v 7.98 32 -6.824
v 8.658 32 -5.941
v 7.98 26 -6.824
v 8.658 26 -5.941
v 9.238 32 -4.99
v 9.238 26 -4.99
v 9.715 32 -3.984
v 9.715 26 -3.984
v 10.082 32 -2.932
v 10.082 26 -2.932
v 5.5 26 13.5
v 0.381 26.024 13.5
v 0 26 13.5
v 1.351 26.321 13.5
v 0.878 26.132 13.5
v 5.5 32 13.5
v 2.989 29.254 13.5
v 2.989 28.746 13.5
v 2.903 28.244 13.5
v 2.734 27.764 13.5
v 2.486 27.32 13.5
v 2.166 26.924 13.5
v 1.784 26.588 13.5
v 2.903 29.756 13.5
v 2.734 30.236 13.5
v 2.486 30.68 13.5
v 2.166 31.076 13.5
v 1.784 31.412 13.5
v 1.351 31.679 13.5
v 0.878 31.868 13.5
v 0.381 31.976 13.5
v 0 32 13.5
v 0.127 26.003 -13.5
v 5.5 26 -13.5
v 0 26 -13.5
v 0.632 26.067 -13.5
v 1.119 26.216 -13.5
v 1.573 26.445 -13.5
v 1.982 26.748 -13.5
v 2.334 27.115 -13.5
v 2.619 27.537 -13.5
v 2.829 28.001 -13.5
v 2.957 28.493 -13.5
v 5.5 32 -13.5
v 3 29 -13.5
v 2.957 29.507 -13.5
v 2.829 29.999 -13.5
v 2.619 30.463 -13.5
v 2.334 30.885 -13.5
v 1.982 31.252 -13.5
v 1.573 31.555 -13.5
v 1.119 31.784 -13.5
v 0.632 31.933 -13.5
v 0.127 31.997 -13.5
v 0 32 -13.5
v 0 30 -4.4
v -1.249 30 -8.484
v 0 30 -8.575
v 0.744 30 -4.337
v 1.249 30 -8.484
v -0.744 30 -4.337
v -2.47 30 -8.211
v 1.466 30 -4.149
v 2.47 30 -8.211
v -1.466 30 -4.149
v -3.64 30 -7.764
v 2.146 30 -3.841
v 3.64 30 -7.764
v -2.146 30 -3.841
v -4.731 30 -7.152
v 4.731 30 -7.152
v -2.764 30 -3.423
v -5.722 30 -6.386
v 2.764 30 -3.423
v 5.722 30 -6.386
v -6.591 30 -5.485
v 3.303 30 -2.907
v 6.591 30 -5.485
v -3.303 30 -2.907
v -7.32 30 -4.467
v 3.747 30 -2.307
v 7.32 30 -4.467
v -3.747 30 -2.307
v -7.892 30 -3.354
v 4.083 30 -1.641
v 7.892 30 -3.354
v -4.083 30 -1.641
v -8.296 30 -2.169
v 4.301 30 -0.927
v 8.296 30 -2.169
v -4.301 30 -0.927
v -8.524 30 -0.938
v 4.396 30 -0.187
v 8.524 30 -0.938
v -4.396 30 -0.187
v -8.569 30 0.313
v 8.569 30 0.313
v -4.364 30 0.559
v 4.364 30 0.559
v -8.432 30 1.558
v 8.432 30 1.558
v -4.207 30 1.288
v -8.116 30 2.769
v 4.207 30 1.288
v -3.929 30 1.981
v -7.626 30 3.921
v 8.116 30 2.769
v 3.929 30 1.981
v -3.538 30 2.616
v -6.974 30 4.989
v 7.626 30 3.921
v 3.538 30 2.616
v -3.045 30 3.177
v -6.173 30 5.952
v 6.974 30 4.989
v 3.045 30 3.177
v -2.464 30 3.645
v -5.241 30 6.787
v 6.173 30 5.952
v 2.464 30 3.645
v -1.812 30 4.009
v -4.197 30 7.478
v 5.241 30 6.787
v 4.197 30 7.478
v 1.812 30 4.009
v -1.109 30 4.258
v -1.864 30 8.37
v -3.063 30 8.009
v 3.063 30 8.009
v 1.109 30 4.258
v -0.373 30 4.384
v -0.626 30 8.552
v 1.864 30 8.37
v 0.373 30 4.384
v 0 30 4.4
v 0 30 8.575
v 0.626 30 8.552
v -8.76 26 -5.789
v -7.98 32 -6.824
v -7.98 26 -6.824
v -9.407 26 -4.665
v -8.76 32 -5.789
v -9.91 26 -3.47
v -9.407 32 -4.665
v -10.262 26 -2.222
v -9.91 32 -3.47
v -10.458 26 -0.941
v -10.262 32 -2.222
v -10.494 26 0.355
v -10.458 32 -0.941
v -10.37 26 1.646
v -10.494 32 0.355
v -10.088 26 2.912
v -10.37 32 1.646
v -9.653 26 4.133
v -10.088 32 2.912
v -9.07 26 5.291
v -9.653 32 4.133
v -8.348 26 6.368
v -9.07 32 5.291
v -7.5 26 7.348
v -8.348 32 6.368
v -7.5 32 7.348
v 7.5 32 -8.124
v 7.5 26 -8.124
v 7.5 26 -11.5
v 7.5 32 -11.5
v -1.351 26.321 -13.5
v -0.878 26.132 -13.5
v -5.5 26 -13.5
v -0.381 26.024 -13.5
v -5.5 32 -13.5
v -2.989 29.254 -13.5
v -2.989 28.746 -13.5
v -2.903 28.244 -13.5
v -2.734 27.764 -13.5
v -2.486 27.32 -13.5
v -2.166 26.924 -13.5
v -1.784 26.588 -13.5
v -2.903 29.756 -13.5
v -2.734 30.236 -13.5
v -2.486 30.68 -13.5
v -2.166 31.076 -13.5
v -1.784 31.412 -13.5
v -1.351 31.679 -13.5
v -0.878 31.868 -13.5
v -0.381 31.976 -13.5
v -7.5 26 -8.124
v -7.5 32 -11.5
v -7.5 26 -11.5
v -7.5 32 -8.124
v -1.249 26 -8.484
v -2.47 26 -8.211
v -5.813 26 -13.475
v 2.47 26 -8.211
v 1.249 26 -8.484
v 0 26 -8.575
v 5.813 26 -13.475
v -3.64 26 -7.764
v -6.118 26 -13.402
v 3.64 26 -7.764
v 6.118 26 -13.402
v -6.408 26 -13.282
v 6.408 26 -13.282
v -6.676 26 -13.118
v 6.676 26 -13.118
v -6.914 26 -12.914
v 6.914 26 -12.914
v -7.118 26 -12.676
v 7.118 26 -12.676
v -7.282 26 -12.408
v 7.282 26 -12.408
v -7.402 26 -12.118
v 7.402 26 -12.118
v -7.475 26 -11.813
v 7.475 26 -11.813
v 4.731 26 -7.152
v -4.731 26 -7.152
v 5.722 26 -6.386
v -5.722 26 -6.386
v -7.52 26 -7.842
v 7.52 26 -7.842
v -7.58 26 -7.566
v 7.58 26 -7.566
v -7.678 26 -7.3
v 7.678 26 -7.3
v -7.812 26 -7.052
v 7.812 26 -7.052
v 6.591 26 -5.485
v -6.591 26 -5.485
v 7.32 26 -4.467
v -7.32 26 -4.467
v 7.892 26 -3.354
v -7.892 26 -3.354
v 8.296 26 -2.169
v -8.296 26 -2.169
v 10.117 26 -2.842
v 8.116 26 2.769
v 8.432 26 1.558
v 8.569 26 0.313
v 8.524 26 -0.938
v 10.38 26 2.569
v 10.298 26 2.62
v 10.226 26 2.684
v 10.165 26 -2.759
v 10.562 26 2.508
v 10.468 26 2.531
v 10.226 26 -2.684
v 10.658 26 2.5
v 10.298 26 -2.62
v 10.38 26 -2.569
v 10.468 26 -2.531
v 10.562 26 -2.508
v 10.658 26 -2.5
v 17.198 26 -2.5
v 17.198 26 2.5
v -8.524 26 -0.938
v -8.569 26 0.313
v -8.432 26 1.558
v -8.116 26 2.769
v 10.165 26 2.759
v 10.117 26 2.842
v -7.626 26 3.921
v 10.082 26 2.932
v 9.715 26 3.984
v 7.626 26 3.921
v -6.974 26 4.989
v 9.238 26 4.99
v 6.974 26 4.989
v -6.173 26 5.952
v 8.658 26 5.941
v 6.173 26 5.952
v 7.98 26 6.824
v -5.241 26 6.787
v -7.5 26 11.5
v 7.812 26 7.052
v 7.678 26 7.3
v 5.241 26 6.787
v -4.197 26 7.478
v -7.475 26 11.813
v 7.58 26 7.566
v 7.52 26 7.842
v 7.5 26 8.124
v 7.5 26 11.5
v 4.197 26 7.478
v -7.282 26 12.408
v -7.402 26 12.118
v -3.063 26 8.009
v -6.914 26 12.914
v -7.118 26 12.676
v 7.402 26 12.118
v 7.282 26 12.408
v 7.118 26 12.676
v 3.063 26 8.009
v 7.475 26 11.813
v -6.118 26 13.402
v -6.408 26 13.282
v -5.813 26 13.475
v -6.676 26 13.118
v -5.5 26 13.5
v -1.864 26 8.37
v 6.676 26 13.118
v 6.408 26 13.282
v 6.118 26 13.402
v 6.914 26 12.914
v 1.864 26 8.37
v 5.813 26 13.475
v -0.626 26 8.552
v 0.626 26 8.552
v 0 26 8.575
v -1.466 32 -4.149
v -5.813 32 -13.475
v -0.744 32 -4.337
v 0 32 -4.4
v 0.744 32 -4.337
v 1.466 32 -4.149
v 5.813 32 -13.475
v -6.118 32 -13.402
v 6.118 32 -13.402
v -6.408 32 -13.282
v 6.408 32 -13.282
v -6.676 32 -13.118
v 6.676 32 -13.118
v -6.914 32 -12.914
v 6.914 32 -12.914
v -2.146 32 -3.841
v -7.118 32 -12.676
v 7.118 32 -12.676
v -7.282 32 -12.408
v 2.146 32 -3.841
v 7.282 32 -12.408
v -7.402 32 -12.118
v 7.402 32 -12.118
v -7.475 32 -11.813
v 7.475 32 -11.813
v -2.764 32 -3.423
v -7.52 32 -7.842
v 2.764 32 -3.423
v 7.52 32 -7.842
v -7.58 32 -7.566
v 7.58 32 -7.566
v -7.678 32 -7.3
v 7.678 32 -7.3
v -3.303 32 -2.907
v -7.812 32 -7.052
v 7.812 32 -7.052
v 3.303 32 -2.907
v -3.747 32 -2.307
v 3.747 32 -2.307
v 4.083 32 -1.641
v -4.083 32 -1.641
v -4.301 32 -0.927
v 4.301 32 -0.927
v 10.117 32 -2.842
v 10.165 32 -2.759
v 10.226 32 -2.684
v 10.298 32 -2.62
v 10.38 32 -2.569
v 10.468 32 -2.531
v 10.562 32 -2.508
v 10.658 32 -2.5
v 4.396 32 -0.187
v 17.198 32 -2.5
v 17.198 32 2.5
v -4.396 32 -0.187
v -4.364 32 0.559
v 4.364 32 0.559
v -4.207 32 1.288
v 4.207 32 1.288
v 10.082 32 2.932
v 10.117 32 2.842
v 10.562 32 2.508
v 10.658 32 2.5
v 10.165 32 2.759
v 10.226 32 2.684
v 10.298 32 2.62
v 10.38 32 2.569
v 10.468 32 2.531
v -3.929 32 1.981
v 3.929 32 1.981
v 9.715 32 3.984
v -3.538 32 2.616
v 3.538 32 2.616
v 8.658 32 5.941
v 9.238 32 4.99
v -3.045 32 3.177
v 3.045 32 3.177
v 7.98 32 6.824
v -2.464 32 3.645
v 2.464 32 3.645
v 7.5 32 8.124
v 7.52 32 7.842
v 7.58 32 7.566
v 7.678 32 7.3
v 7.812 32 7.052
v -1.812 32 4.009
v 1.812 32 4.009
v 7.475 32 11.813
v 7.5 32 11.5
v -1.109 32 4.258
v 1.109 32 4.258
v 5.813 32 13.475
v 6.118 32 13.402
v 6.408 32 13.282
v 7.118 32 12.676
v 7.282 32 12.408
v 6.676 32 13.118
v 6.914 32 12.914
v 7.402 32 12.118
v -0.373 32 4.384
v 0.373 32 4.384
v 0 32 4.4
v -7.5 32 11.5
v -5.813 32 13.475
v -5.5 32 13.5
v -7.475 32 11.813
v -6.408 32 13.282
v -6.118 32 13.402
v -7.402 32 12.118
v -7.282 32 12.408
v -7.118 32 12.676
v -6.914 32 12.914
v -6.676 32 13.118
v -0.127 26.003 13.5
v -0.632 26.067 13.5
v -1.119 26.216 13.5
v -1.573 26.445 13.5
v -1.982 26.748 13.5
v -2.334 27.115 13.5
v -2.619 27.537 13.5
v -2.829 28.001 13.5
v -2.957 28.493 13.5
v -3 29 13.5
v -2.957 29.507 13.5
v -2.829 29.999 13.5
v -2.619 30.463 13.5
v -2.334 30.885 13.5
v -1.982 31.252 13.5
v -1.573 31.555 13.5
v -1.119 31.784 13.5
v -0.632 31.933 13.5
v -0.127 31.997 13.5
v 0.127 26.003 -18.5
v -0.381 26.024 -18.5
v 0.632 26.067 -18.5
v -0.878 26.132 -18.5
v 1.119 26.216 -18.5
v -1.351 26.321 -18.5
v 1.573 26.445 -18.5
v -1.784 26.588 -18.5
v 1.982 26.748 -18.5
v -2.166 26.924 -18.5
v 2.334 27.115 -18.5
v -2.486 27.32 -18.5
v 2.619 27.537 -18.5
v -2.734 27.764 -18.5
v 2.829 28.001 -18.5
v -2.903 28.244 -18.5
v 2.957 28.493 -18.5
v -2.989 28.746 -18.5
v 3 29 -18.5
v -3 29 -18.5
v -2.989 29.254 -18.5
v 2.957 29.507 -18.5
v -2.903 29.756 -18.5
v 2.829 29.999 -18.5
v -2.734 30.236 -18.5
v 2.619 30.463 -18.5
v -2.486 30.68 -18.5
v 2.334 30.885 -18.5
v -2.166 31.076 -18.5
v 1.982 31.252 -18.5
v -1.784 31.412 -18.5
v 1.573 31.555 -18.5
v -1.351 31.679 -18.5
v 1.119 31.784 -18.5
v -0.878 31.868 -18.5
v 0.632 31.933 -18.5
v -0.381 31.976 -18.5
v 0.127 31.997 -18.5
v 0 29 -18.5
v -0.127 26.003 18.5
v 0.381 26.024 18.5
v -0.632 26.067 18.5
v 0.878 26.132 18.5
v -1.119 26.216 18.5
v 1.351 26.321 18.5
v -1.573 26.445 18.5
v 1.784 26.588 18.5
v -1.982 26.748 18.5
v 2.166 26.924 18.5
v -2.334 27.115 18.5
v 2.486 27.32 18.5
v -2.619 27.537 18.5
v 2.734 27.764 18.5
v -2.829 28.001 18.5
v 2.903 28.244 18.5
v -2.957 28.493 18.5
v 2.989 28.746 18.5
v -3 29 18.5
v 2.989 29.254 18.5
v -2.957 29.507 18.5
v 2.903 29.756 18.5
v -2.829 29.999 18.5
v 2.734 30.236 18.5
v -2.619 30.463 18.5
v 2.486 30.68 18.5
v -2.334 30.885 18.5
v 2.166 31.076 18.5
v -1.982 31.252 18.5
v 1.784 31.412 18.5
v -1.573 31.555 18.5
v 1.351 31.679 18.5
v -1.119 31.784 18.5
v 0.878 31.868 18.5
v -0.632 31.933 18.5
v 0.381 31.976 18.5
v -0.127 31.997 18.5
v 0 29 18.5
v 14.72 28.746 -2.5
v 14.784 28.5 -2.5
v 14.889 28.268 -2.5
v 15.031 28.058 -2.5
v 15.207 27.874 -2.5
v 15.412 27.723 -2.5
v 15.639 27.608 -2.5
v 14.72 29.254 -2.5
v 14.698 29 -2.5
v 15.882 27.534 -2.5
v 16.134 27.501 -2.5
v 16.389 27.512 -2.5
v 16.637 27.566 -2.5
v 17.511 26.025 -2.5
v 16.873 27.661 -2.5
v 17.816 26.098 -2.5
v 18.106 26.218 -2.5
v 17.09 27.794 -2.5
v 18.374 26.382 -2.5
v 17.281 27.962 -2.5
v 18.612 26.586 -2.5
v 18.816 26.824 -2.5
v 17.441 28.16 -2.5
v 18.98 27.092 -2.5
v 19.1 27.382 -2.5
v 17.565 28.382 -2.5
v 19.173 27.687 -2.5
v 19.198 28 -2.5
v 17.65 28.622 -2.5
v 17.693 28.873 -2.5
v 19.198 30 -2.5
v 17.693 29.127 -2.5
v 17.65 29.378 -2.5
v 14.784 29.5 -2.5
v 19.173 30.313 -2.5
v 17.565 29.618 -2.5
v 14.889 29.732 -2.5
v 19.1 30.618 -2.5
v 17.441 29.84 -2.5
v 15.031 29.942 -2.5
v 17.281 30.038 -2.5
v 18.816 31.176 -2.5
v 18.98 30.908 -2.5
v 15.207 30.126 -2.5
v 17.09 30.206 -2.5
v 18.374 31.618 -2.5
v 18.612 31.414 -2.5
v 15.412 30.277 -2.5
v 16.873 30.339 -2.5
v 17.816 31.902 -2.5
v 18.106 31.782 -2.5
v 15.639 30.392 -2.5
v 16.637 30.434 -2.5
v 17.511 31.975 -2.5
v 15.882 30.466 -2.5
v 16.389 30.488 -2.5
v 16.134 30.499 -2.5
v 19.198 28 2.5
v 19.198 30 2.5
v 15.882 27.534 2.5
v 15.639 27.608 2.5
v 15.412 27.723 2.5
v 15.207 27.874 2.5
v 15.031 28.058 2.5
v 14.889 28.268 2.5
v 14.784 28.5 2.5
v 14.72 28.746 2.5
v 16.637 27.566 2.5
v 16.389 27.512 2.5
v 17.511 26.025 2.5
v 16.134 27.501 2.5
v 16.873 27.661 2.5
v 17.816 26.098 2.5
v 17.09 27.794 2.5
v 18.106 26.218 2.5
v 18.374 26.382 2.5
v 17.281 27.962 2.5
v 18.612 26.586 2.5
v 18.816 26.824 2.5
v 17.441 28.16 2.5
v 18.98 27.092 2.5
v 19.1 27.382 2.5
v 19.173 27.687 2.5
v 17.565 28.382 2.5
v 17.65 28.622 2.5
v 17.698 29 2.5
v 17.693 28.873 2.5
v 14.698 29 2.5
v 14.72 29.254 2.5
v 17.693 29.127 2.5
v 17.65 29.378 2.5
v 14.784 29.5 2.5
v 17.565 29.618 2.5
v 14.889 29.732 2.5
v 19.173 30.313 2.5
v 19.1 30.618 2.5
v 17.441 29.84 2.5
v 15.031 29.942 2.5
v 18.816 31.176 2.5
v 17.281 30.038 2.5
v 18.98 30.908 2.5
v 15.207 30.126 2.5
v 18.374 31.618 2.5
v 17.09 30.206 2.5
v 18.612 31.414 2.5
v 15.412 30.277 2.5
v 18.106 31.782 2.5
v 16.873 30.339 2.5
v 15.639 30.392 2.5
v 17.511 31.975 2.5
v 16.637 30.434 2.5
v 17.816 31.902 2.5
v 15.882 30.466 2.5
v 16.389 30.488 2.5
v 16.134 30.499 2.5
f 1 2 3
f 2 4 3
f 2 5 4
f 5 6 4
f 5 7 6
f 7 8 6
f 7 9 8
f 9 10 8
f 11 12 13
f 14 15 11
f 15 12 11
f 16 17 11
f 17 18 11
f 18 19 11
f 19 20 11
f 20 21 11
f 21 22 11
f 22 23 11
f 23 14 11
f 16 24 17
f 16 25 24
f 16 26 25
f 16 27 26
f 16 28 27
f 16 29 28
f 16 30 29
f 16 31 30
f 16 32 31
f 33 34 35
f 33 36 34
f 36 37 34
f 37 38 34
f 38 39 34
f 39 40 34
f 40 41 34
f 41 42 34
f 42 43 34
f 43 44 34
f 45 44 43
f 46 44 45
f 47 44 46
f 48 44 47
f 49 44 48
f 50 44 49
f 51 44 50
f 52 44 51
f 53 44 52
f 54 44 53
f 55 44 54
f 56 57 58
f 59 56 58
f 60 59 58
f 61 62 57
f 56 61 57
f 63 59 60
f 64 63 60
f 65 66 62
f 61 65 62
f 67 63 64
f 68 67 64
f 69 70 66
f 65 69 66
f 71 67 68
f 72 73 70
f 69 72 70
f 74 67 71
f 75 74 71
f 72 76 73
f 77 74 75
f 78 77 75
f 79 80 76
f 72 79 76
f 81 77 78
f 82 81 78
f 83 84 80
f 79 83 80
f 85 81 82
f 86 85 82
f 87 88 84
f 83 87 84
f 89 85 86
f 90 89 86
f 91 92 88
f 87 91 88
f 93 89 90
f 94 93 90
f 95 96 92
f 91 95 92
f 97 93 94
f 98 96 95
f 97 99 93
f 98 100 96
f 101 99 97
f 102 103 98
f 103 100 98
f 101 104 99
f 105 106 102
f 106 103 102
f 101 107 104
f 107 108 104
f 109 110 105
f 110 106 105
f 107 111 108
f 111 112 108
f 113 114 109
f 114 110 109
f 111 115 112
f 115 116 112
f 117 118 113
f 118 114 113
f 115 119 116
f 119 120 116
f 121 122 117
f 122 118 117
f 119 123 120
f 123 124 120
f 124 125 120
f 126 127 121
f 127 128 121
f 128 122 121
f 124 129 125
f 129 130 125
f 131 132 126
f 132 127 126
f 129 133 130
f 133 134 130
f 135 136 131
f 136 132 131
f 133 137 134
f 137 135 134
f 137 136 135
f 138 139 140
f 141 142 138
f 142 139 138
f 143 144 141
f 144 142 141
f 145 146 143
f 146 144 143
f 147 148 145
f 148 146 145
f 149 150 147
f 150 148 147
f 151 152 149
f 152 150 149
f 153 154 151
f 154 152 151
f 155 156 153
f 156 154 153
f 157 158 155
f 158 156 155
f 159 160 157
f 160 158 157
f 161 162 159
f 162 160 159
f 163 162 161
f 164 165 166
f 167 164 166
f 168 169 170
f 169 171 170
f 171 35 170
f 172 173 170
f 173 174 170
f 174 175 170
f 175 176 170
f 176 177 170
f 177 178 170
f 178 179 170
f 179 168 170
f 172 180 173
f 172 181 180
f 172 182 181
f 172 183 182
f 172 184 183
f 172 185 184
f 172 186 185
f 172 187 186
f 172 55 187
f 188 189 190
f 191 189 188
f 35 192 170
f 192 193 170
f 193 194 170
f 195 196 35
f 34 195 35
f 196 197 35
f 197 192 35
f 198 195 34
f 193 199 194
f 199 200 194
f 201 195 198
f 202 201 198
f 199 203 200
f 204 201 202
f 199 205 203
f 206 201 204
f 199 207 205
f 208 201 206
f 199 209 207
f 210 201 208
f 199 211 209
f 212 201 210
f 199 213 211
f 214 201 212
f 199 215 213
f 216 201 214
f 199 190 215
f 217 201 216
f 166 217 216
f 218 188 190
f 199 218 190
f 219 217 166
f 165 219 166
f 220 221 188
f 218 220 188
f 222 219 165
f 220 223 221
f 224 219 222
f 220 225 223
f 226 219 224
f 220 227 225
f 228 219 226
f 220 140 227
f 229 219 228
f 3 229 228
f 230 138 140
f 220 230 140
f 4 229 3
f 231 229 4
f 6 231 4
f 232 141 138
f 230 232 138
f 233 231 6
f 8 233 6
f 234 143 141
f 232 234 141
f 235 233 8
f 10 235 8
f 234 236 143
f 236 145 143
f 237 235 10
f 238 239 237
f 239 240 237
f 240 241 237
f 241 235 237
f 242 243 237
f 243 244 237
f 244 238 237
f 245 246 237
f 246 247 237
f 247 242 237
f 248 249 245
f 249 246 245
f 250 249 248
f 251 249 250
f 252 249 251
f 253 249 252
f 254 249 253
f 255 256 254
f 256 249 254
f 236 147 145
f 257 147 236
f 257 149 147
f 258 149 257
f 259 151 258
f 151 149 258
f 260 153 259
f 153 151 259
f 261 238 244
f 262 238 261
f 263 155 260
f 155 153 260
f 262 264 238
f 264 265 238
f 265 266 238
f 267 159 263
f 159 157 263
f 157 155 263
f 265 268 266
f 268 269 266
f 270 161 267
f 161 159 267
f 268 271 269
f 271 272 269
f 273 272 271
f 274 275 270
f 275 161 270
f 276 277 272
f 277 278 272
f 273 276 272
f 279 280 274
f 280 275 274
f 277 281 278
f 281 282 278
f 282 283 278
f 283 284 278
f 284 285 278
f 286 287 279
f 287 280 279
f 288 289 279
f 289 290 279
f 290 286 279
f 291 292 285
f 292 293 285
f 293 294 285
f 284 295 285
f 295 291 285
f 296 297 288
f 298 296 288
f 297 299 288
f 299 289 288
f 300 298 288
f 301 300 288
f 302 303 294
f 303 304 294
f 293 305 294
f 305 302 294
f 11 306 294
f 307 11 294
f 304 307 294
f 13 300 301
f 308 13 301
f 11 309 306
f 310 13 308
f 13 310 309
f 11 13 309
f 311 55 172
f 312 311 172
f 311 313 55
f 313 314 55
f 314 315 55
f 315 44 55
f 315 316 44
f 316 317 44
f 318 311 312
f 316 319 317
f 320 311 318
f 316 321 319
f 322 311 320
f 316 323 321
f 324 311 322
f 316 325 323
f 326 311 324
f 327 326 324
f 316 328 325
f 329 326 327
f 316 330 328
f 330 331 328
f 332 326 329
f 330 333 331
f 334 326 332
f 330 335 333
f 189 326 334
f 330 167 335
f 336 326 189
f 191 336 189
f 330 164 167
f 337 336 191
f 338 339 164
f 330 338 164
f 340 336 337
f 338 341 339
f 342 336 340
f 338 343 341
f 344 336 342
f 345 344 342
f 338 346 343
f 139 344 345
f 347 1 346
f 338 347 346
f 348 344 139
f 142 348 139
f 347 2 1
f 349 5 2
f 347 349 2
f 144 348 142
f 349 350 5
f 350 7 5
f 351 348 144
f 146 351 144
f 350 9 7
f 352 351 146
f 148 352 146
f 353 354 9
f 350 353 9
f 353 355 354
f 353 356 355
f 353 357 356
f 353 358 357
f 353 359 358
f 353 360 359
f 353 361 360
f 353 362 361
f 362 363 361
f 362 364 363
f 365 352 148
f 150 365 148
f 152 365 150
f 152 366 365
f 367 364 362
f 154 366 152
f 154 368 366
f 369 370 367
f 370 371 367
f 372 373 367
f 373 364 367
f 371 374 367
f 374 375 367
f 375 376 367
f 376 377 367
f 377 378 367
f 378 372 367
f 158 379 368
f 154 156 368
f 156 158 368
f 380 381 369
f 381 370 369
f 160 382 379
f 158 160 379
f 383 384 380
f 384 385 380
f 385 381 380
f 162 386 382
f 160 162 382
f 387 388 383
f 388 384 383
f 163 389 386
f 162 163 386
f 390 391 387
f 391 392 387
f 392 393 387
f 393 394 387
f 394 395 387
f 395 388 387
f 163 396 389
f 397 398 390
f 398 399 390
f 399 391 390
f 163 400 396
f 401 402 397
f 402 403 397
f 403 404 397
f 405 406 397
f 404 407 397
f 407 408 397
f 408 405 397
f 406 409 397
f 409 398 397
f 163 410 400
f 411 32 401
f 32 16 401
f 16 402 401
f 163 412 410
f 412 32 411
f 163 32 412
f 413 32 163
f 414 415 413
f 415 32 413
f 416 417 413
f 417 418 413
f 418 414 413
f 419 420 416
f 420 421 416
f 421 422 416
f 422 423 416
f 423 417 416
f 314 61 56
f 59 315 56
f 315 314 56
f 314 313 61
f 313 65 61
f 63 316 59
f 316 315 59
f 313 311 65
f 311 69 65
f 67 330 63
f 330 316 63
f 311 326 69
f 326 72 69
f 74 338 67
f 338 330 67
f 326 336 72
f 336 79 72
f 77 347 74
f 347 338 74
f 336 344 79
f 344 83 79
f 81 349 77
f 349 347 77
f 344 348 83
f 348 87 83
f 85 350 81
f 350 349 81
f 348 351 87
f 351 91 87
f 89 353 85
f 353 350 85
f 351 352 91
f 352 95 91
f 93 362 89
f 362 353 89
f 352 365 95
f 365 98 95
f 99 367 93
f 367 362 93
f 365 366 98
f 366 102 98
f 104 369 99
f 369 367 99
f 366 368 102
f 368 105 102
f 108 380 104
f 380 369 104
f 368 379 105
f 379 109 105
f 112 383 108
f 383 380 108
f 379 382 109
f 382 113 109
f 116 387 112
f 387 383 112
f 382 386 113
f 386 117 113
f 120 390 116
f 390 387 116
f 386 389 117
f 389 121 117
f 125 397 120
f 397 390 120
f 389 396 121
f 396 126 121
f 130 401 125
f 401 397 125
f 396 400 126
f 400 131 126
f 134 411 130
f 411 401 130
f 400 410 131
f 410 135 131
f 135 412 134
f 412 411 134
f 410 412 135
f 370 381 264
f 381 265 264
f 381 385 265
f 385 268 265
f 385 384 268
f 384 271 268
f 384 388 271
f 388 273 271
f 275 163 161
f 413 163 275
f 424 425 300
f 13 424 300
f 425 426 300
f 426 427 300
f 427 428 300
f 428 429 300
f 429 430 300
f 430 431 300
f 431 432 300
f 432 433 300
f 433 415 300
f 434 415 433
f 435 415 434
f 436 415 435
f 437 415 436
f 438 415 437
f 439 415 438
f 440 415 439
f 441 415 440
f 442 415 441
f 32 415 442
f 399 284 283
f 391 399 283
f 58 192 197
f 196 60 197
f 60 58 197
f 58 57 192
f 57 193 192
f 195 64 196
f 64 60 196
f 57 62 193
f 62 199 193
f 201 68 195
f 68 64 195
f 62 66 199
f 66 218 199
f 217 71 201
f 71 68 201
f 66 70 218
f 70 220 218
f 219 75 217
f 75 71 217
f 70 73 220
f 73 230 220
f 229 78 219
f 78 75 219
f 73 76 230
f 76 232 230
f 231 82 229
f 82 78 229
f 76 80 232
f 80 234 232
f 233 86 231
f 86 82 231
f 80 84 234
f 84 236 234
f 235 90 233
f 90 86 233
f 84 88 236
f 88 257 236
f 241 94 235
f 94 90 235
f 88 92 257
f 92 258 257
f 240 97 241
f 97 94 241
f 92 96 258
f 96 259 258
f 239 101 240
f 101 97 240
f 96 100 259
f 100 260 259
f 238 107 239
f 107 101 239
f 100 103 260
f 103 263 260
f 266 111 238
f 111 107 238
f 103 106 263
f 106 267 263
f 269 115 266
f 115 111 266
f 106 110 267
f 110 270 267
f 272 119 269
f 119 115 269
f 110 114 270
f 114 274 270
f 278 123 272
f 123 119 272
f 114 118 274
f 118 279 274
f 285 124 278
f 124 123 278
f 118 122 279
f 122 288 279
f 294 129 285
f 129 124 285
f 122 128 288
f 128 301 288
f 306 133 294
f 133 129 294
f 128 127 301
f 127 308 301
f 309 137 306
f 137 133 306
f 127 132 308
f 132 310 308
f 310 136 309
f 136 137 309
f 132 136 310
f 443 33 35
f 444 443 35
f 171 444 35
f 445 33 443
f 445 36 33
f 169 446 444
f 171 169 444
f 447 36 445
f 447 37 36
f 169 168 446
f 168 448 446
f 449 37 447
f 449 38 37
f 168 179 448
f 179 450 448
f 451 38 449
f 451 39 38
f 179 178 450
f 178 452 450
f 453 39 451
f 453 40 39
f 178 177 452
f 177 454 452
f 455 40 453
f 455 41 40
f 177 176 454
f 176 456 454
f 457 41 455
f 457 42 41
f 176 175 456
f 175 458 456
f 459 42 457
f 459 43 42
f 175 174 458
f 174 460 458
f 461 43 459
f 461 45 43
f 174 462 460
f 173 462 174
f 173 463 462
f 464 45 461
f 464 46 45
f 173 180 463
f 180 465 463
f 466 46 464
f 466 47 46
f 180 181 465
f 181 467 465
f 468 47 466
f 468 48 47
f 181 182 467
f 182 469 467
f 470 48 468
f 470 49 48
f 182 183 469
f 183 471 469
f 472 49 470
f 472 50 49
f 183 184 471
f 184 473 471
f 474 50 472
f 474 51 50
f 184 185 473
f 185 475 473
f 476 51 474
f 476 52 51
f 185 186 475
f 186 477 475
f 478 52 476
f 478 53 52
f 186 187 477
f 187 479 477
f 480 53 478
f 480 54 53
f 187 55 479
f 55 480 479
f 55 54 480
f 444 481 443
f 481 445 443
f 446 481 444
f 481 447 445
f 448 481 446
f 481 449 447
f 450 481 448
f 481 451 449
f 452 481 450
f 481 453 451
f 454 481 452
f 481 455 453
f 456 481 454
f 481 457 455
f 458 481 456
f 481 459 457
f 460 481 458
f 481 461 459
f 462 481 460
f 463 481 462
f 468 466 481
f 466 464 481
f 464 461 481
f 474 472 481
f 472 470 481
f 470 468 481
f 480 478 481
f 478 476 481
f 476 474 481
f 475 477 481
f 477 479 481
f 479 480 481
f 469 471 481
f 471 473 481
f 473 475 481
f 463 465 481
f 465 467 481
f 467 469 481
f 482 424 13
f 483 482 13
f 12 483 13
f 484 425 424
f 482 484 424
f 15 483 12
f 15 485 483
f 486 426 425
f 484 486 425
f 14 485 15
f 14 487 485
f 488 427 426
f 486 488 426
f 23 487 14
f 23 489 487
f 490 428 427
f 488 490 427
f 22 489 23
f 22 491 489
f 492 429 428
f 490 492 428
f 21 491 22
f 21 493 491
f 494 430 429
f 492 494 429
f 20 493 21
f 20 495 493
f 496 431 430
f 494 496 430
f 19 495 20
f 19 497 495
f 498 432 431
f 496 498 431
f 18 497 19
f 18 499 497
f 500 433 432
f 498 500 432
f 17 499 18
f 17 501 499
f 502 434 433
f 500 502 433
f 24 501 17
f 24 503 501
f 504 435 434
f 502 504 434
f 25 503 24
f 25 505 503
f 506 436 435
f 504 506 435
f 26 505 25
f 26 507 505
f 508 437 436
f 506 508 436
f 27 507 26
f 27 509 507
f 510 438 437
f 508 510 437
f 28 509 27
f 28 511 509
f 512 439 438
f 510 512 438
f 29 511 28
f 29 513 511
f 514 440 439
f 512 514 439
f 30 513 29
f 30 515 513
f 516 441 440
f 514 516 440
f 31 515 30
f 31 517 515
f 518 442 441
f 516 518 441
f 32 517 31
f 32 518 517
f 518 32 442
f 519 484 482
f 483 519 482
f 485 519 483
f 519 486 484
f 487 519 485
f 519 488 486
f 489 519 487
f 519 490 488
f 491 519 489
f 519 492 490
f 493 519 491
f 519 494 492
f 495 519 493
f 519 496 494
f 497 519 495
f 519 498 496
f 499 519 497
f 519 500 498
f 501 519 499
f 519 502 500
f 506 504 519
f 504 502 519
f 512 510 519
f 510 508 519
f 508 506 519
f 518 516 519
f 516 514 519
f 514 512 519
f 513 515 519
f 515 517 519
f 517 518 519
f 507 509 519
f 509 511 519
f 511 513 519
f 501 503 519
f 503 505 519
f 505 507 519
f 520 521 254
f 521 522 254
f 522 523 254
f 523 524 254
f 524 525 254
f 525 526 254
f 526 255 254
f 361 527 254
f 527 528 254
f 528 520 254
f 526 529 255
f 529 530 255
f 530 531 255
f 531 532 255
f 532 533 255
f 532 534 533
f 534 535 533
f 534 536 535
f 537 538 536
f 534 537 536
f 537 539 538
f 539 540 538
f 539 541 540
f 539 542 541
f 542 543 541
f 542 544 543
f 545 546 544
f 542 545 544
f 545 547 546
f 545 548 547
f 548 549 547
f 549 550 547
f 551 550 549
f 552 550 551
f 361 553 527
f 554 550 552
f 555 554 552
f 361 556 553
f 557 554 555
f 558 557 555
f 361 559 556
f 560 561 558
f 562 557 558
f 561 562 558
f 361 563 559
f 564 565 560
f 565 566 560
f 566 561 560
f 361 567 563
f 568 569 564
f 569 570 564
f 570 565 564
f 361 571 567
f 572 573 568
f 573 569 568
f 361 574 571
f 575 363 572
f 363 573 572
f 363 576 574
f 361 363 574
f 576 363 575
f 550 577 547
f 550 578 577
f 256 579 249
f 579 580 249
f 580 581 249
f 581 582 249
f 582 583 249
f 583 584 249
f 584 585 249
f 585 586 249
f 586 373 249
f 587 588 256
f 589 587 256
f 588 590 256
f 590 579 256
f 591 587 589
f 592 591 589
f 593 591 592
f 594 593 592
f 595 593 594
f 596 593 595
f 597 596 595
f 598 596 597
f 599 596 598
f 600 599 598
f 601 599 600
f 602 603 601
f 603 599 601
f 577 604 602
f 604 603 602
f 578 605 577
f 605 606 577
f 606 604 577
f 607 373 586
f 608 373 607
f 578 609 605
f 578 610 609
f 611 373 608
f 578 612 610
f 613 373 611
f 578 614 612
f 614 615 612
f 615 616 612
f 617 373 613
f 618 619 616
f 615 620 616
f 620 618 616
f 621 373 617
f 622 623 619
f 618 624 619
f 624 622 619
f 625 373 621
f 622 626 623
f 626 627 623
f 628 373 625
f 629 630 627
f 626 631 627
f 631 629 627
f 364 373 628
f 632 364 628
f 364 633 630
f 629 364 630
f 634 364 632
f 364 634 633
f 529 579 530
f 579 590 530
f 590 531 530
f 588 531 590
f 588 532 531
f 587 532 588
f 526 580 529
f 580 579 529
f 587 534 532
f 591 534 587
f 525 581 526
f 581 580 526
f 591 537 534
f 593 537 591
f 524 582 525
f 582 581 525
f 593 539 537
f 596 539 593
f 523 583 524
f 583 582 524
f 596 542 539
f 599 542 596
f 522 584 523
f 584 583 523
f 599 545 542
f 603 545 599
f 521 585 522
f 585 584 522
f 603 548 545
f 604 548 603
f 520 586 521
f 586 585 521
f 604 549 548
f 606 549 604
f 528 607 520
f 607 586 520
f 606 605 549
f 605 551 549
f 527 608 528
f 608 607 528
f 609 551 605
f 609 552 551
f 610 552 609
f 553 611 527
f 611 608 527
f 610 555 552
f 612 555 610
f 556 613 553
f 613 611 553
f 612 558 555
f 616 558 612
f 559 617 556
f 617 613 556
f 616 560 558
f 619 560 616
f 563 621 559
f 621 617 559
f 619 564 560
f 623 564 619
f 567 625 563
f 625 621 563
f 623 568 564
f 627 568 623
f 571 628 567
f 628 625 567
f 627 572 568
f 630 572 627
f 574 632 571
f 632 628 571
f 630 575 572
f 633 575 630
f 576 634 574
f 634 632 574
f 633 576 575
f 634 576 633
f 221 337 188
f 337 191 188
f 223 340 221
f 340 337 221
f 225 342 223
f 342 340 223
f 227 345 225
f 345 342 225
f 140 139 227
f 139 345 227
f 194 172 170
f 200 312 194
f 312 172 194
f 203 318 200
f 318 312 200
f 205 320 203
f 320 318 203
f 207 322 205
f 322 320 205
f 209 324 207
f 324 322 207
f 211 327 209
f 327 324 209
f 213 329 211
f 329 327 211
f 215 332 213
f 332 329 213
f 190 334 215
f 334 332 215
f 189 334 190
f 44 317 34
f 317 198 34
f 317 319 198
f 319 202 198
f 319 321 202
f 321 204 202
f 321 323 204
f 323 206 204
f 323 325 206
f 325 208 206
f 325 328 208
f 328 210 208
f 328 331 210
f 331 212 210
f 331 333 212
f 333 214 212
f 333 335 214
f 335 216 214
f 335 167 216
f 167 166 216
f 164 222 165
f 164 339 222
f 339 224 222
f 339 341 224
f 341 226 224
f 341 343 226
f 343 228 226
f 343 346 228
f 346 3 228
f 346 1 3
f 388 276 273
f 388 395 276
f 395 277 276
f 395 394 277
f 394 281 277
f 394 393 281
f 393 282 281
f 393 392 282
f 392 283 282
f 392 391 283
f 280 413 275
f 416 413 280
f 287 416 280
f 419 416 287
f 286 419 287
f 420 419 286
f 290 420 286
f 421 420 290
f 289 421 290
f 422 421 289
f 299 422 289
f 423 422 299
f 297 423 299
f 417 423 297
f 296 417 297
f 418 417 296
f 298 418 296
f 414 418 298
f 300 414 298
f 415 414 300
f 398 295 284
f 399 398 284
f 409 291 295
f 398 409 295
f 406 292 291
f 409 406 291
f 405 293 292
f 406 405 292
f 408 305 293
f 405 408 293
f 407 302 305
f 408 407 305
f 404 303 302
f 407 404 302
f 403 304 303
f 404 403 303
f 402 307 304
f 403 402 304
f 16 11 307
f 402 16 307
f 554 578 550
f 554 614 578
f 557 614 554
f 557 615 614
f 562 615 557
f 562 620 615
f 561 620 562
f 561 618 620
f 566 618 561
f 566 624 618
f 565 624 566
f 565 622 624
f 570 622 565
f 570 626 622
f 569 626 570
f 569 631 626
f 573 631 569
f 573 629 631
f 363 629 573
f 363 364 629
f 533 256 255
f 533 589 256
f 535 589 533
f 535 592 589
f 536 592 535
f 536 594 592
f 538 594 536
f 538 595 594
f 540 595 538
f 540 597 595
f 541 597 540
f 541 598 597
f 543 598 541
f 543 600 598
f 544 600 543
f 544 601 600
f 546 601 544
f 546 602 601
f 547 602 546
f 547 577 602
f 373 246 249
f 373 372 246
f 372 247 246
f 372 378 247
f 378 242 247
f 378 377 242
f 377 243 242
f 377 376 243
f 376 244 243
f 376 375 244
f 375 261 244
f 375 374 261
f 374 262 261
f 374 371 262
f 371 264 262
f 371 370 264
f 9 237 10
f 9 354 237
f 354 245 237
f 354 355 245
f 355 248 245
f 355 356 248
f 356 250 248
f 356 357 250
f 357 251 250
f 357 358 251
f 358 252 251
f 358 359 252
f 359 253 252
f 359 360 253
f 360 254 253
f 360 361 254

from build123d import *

# Parameters (mm, degrees)
BOSS_EXTRUDE1_DEPTH   = 6
BOSS_EXTRUDE1_2_DEPTH = 6
SKETCH1_3_R           = 10.5
SKETCH1_3_R_2         = 4.4
BOSS_EXTRUDE2_DEPTH   = 2
SKETCH2_R             = 8.575
BOSS_EXTRUDE3_DEPTH   = 4
SKETCH3_R             = 3
BOSS_EXTRUDE4_DEPTH   = 5
BOSS_EXTRUDE5_START   = -6
BOSS_EXTRUDE5_DEPTH   = 6
CUT_EXTRUDE1_REACH    = 31.079
SKETCH5_R             = 1.5
FILLET1_R             = 2
FILLET2_R             = 0.6


with BuildPart() as part:
    # Sketch1 → Boss-Extrude1 (new body)
    with BuildSketch(Plane(origin=(0, 0, 0), x_dir=(1, 0, 0), z_dir=(0, 1, 0))):
        with BuildLine():
            Line((-7.5, 13.5), (-7.5, 7.348469228))
            ThreePointArc((-7.5, 7.348469228), (0, 10.5), (7.5, 7.348469228))
            Line((7.5, 7.348469228), (7.5, 13.5))
            Line((7.5, 13.5), (-7.5, 13.5))
        make_face()
    extrude(amount=BOSS_EXTRUDE1_DEPTH)



with BuildPart() as body_2:
    # Sketch1 → Boss-Extrude1 2 (new body)
    with BuildSketch(Plane(origin=(0, 0, 0), x_dir=(1, 0, 0), z_dir=(0, 1, 0))):
        with BuildLine():
            ThreePointArc((7.5, -7.348469228), (0, -10.5), (-7.5, -7.348469228))
            Line((-7.5, -7.348469228), (-7.5, -13.5))
            Line((-7.5, -13.5), (7.5, -13.5))
            Line((7.5, -13.5), (7.5, -7.348469228))
        make_face()
    extrude(amount=BOSS_EXTRUDE1_2_DEPTH)


with BuildPart() as part_1:
    add(part.part)

    add(body_2.part)  # Boss-Extrude2 merges body 2
    # Sketch1<3> → Boss-Extrude2 (add)
    with BuildSketch(Plane(origin=(0, 0, 0), x_dir=(1, 0, 0), z_dir=(0, 1, 0))):
        Circle(SKETCH1_3_R)
        with Locations(Location((0, 0, 0), (0, 0, 270))):
            Circle(SKETCH1_3_R_2, mode=Mode.SUBTRACT)
    extrude(amount=BOSS_EXTRUDE2_DEPTH)

    # Sketch2 → Boss-Extrude3 (add)
    with BuildSketch(Plane(origin=(0, 2, 0), x_dir=(1, 0, 0), z_dir=(0, 1, 0))):
        with BuildLine():
            ThreePointArc((7.5, 7.348469228), (0, 10.5), (-7.5, 7.348469228))
            ThreePointArc((-7.5, 7.348469228), (-10.5, 0), (-7.5, -7.348469228))
            ThreePointArc((-7.5, -7.348469228), (0, -10.5), (7.5, -7.348469228))
            ThreePointArc((7.5, -7.348469228), (10.5, 0), (7.5, 7.348469228))
        make_face()
        with Locations(Location((0, 0, 0), (0, 0, 270))):
            Circle(SKETCH2_R, mode=Mode.SUBTRACT)
    extrude(amount=BOSS_EXTRUDE3_DEPTH)

    # Sketch3 → Boss-Extrude4 (add)
    with BuildSketch(Plane(origin=(0, 0, -13.5), x_dir=(-1, 0, 0), z_dir=(0, 0, -1))):
        with Locations(Location((0, 3, 0), (0, 0, 270))):
            Circle(SKETCH3_R)
    boss_extrude4 = extrude(amount=BOSS_EXTRUDE4_DEPTH)

    # Mirror1: Boss-Extrude4 across plane
    add(boss_extrude4.mirror(Plane.XY))

    # Sketch4 → Boss-Extrude5 (add)
    with BuildSketch(Plane(origin=(0, 6, 0), x_dir=(1, 0, 0), z_dir=(0, 1, 0)).offset(BOSS_EXTRUDE5_START)):
        with BuildLine():
            Line((10.198039027, -2.5), (19.198039027, -2.5))
            Line((19.198039027, -2.5), (19.198039027, 2.5))
            Line((19.198039027, 2.5), (10.198039027, 2.5))
            ThreePointArc((10.198039027, 2.5), (10.5, 0), (10.198039027, -2.5))
        make_face()
    extrude(amount=BOSS_EXTRUDE5_DEPTH)

    # Sketch5 → Cut-Extrude1 (cut, up to next)
    with BuildSketch(Plane(origin=(0, 0, -2.5), x_dir=(-1, 0, 0), z_dir=(0, 0, -1)), mode=Mode.PRIVATE) as cut_extrude1_sk1:
        with Locations((-16.198039027, 3)):
            Circle(SKETCH5_R)
    cut_extrude1_tool1 = extrude(cut_extrude1_sk1.sketch, amount=-CUT_EXTRUDE1_REACH, mode=Mode.PRIVATE) & part_1.part
    add(cut_extrude1_tool1.solids().sort_by_distance((16.198039, 3, -2.5))[0], mode=Mode.SUBTRACT)

    # Fillet1
    fillet1_edges = [part_1.edges().sort_by_distance(p)[0] for p in [
        (7.5, 3, 7.348469228),
        (-7.5, 3, 13.5),
        (7.5, 3, 13.5),
        (19.198039027, 6, 0),
        (19.198039027, 0, 0),
        (-7.5, 3, -7.348469228),
        (-7.5, 3, -13.5),
        (7.5, 3, -13.5),
        (7.5, 3, -7.348469228),
    ]]
    fillet(fillet1_edges, radius=FILLET1_R)

    # Fillet2
    fillet2_edges = [part_1.edges().sort_by_distance(p)[0] for p in [
        (10.198039027, 3, 2.5),
        (10.198039027, 3, -2.5),
    ]]
    fillet(fillet2_edges, radius=FILLET2_R)


with BuildPart() as body_2_2:
    # Mirror3: mirrored copy
    add(part_1.part.mirror(Plane.ZX.offset(16)))


solid = body_2_2.part
